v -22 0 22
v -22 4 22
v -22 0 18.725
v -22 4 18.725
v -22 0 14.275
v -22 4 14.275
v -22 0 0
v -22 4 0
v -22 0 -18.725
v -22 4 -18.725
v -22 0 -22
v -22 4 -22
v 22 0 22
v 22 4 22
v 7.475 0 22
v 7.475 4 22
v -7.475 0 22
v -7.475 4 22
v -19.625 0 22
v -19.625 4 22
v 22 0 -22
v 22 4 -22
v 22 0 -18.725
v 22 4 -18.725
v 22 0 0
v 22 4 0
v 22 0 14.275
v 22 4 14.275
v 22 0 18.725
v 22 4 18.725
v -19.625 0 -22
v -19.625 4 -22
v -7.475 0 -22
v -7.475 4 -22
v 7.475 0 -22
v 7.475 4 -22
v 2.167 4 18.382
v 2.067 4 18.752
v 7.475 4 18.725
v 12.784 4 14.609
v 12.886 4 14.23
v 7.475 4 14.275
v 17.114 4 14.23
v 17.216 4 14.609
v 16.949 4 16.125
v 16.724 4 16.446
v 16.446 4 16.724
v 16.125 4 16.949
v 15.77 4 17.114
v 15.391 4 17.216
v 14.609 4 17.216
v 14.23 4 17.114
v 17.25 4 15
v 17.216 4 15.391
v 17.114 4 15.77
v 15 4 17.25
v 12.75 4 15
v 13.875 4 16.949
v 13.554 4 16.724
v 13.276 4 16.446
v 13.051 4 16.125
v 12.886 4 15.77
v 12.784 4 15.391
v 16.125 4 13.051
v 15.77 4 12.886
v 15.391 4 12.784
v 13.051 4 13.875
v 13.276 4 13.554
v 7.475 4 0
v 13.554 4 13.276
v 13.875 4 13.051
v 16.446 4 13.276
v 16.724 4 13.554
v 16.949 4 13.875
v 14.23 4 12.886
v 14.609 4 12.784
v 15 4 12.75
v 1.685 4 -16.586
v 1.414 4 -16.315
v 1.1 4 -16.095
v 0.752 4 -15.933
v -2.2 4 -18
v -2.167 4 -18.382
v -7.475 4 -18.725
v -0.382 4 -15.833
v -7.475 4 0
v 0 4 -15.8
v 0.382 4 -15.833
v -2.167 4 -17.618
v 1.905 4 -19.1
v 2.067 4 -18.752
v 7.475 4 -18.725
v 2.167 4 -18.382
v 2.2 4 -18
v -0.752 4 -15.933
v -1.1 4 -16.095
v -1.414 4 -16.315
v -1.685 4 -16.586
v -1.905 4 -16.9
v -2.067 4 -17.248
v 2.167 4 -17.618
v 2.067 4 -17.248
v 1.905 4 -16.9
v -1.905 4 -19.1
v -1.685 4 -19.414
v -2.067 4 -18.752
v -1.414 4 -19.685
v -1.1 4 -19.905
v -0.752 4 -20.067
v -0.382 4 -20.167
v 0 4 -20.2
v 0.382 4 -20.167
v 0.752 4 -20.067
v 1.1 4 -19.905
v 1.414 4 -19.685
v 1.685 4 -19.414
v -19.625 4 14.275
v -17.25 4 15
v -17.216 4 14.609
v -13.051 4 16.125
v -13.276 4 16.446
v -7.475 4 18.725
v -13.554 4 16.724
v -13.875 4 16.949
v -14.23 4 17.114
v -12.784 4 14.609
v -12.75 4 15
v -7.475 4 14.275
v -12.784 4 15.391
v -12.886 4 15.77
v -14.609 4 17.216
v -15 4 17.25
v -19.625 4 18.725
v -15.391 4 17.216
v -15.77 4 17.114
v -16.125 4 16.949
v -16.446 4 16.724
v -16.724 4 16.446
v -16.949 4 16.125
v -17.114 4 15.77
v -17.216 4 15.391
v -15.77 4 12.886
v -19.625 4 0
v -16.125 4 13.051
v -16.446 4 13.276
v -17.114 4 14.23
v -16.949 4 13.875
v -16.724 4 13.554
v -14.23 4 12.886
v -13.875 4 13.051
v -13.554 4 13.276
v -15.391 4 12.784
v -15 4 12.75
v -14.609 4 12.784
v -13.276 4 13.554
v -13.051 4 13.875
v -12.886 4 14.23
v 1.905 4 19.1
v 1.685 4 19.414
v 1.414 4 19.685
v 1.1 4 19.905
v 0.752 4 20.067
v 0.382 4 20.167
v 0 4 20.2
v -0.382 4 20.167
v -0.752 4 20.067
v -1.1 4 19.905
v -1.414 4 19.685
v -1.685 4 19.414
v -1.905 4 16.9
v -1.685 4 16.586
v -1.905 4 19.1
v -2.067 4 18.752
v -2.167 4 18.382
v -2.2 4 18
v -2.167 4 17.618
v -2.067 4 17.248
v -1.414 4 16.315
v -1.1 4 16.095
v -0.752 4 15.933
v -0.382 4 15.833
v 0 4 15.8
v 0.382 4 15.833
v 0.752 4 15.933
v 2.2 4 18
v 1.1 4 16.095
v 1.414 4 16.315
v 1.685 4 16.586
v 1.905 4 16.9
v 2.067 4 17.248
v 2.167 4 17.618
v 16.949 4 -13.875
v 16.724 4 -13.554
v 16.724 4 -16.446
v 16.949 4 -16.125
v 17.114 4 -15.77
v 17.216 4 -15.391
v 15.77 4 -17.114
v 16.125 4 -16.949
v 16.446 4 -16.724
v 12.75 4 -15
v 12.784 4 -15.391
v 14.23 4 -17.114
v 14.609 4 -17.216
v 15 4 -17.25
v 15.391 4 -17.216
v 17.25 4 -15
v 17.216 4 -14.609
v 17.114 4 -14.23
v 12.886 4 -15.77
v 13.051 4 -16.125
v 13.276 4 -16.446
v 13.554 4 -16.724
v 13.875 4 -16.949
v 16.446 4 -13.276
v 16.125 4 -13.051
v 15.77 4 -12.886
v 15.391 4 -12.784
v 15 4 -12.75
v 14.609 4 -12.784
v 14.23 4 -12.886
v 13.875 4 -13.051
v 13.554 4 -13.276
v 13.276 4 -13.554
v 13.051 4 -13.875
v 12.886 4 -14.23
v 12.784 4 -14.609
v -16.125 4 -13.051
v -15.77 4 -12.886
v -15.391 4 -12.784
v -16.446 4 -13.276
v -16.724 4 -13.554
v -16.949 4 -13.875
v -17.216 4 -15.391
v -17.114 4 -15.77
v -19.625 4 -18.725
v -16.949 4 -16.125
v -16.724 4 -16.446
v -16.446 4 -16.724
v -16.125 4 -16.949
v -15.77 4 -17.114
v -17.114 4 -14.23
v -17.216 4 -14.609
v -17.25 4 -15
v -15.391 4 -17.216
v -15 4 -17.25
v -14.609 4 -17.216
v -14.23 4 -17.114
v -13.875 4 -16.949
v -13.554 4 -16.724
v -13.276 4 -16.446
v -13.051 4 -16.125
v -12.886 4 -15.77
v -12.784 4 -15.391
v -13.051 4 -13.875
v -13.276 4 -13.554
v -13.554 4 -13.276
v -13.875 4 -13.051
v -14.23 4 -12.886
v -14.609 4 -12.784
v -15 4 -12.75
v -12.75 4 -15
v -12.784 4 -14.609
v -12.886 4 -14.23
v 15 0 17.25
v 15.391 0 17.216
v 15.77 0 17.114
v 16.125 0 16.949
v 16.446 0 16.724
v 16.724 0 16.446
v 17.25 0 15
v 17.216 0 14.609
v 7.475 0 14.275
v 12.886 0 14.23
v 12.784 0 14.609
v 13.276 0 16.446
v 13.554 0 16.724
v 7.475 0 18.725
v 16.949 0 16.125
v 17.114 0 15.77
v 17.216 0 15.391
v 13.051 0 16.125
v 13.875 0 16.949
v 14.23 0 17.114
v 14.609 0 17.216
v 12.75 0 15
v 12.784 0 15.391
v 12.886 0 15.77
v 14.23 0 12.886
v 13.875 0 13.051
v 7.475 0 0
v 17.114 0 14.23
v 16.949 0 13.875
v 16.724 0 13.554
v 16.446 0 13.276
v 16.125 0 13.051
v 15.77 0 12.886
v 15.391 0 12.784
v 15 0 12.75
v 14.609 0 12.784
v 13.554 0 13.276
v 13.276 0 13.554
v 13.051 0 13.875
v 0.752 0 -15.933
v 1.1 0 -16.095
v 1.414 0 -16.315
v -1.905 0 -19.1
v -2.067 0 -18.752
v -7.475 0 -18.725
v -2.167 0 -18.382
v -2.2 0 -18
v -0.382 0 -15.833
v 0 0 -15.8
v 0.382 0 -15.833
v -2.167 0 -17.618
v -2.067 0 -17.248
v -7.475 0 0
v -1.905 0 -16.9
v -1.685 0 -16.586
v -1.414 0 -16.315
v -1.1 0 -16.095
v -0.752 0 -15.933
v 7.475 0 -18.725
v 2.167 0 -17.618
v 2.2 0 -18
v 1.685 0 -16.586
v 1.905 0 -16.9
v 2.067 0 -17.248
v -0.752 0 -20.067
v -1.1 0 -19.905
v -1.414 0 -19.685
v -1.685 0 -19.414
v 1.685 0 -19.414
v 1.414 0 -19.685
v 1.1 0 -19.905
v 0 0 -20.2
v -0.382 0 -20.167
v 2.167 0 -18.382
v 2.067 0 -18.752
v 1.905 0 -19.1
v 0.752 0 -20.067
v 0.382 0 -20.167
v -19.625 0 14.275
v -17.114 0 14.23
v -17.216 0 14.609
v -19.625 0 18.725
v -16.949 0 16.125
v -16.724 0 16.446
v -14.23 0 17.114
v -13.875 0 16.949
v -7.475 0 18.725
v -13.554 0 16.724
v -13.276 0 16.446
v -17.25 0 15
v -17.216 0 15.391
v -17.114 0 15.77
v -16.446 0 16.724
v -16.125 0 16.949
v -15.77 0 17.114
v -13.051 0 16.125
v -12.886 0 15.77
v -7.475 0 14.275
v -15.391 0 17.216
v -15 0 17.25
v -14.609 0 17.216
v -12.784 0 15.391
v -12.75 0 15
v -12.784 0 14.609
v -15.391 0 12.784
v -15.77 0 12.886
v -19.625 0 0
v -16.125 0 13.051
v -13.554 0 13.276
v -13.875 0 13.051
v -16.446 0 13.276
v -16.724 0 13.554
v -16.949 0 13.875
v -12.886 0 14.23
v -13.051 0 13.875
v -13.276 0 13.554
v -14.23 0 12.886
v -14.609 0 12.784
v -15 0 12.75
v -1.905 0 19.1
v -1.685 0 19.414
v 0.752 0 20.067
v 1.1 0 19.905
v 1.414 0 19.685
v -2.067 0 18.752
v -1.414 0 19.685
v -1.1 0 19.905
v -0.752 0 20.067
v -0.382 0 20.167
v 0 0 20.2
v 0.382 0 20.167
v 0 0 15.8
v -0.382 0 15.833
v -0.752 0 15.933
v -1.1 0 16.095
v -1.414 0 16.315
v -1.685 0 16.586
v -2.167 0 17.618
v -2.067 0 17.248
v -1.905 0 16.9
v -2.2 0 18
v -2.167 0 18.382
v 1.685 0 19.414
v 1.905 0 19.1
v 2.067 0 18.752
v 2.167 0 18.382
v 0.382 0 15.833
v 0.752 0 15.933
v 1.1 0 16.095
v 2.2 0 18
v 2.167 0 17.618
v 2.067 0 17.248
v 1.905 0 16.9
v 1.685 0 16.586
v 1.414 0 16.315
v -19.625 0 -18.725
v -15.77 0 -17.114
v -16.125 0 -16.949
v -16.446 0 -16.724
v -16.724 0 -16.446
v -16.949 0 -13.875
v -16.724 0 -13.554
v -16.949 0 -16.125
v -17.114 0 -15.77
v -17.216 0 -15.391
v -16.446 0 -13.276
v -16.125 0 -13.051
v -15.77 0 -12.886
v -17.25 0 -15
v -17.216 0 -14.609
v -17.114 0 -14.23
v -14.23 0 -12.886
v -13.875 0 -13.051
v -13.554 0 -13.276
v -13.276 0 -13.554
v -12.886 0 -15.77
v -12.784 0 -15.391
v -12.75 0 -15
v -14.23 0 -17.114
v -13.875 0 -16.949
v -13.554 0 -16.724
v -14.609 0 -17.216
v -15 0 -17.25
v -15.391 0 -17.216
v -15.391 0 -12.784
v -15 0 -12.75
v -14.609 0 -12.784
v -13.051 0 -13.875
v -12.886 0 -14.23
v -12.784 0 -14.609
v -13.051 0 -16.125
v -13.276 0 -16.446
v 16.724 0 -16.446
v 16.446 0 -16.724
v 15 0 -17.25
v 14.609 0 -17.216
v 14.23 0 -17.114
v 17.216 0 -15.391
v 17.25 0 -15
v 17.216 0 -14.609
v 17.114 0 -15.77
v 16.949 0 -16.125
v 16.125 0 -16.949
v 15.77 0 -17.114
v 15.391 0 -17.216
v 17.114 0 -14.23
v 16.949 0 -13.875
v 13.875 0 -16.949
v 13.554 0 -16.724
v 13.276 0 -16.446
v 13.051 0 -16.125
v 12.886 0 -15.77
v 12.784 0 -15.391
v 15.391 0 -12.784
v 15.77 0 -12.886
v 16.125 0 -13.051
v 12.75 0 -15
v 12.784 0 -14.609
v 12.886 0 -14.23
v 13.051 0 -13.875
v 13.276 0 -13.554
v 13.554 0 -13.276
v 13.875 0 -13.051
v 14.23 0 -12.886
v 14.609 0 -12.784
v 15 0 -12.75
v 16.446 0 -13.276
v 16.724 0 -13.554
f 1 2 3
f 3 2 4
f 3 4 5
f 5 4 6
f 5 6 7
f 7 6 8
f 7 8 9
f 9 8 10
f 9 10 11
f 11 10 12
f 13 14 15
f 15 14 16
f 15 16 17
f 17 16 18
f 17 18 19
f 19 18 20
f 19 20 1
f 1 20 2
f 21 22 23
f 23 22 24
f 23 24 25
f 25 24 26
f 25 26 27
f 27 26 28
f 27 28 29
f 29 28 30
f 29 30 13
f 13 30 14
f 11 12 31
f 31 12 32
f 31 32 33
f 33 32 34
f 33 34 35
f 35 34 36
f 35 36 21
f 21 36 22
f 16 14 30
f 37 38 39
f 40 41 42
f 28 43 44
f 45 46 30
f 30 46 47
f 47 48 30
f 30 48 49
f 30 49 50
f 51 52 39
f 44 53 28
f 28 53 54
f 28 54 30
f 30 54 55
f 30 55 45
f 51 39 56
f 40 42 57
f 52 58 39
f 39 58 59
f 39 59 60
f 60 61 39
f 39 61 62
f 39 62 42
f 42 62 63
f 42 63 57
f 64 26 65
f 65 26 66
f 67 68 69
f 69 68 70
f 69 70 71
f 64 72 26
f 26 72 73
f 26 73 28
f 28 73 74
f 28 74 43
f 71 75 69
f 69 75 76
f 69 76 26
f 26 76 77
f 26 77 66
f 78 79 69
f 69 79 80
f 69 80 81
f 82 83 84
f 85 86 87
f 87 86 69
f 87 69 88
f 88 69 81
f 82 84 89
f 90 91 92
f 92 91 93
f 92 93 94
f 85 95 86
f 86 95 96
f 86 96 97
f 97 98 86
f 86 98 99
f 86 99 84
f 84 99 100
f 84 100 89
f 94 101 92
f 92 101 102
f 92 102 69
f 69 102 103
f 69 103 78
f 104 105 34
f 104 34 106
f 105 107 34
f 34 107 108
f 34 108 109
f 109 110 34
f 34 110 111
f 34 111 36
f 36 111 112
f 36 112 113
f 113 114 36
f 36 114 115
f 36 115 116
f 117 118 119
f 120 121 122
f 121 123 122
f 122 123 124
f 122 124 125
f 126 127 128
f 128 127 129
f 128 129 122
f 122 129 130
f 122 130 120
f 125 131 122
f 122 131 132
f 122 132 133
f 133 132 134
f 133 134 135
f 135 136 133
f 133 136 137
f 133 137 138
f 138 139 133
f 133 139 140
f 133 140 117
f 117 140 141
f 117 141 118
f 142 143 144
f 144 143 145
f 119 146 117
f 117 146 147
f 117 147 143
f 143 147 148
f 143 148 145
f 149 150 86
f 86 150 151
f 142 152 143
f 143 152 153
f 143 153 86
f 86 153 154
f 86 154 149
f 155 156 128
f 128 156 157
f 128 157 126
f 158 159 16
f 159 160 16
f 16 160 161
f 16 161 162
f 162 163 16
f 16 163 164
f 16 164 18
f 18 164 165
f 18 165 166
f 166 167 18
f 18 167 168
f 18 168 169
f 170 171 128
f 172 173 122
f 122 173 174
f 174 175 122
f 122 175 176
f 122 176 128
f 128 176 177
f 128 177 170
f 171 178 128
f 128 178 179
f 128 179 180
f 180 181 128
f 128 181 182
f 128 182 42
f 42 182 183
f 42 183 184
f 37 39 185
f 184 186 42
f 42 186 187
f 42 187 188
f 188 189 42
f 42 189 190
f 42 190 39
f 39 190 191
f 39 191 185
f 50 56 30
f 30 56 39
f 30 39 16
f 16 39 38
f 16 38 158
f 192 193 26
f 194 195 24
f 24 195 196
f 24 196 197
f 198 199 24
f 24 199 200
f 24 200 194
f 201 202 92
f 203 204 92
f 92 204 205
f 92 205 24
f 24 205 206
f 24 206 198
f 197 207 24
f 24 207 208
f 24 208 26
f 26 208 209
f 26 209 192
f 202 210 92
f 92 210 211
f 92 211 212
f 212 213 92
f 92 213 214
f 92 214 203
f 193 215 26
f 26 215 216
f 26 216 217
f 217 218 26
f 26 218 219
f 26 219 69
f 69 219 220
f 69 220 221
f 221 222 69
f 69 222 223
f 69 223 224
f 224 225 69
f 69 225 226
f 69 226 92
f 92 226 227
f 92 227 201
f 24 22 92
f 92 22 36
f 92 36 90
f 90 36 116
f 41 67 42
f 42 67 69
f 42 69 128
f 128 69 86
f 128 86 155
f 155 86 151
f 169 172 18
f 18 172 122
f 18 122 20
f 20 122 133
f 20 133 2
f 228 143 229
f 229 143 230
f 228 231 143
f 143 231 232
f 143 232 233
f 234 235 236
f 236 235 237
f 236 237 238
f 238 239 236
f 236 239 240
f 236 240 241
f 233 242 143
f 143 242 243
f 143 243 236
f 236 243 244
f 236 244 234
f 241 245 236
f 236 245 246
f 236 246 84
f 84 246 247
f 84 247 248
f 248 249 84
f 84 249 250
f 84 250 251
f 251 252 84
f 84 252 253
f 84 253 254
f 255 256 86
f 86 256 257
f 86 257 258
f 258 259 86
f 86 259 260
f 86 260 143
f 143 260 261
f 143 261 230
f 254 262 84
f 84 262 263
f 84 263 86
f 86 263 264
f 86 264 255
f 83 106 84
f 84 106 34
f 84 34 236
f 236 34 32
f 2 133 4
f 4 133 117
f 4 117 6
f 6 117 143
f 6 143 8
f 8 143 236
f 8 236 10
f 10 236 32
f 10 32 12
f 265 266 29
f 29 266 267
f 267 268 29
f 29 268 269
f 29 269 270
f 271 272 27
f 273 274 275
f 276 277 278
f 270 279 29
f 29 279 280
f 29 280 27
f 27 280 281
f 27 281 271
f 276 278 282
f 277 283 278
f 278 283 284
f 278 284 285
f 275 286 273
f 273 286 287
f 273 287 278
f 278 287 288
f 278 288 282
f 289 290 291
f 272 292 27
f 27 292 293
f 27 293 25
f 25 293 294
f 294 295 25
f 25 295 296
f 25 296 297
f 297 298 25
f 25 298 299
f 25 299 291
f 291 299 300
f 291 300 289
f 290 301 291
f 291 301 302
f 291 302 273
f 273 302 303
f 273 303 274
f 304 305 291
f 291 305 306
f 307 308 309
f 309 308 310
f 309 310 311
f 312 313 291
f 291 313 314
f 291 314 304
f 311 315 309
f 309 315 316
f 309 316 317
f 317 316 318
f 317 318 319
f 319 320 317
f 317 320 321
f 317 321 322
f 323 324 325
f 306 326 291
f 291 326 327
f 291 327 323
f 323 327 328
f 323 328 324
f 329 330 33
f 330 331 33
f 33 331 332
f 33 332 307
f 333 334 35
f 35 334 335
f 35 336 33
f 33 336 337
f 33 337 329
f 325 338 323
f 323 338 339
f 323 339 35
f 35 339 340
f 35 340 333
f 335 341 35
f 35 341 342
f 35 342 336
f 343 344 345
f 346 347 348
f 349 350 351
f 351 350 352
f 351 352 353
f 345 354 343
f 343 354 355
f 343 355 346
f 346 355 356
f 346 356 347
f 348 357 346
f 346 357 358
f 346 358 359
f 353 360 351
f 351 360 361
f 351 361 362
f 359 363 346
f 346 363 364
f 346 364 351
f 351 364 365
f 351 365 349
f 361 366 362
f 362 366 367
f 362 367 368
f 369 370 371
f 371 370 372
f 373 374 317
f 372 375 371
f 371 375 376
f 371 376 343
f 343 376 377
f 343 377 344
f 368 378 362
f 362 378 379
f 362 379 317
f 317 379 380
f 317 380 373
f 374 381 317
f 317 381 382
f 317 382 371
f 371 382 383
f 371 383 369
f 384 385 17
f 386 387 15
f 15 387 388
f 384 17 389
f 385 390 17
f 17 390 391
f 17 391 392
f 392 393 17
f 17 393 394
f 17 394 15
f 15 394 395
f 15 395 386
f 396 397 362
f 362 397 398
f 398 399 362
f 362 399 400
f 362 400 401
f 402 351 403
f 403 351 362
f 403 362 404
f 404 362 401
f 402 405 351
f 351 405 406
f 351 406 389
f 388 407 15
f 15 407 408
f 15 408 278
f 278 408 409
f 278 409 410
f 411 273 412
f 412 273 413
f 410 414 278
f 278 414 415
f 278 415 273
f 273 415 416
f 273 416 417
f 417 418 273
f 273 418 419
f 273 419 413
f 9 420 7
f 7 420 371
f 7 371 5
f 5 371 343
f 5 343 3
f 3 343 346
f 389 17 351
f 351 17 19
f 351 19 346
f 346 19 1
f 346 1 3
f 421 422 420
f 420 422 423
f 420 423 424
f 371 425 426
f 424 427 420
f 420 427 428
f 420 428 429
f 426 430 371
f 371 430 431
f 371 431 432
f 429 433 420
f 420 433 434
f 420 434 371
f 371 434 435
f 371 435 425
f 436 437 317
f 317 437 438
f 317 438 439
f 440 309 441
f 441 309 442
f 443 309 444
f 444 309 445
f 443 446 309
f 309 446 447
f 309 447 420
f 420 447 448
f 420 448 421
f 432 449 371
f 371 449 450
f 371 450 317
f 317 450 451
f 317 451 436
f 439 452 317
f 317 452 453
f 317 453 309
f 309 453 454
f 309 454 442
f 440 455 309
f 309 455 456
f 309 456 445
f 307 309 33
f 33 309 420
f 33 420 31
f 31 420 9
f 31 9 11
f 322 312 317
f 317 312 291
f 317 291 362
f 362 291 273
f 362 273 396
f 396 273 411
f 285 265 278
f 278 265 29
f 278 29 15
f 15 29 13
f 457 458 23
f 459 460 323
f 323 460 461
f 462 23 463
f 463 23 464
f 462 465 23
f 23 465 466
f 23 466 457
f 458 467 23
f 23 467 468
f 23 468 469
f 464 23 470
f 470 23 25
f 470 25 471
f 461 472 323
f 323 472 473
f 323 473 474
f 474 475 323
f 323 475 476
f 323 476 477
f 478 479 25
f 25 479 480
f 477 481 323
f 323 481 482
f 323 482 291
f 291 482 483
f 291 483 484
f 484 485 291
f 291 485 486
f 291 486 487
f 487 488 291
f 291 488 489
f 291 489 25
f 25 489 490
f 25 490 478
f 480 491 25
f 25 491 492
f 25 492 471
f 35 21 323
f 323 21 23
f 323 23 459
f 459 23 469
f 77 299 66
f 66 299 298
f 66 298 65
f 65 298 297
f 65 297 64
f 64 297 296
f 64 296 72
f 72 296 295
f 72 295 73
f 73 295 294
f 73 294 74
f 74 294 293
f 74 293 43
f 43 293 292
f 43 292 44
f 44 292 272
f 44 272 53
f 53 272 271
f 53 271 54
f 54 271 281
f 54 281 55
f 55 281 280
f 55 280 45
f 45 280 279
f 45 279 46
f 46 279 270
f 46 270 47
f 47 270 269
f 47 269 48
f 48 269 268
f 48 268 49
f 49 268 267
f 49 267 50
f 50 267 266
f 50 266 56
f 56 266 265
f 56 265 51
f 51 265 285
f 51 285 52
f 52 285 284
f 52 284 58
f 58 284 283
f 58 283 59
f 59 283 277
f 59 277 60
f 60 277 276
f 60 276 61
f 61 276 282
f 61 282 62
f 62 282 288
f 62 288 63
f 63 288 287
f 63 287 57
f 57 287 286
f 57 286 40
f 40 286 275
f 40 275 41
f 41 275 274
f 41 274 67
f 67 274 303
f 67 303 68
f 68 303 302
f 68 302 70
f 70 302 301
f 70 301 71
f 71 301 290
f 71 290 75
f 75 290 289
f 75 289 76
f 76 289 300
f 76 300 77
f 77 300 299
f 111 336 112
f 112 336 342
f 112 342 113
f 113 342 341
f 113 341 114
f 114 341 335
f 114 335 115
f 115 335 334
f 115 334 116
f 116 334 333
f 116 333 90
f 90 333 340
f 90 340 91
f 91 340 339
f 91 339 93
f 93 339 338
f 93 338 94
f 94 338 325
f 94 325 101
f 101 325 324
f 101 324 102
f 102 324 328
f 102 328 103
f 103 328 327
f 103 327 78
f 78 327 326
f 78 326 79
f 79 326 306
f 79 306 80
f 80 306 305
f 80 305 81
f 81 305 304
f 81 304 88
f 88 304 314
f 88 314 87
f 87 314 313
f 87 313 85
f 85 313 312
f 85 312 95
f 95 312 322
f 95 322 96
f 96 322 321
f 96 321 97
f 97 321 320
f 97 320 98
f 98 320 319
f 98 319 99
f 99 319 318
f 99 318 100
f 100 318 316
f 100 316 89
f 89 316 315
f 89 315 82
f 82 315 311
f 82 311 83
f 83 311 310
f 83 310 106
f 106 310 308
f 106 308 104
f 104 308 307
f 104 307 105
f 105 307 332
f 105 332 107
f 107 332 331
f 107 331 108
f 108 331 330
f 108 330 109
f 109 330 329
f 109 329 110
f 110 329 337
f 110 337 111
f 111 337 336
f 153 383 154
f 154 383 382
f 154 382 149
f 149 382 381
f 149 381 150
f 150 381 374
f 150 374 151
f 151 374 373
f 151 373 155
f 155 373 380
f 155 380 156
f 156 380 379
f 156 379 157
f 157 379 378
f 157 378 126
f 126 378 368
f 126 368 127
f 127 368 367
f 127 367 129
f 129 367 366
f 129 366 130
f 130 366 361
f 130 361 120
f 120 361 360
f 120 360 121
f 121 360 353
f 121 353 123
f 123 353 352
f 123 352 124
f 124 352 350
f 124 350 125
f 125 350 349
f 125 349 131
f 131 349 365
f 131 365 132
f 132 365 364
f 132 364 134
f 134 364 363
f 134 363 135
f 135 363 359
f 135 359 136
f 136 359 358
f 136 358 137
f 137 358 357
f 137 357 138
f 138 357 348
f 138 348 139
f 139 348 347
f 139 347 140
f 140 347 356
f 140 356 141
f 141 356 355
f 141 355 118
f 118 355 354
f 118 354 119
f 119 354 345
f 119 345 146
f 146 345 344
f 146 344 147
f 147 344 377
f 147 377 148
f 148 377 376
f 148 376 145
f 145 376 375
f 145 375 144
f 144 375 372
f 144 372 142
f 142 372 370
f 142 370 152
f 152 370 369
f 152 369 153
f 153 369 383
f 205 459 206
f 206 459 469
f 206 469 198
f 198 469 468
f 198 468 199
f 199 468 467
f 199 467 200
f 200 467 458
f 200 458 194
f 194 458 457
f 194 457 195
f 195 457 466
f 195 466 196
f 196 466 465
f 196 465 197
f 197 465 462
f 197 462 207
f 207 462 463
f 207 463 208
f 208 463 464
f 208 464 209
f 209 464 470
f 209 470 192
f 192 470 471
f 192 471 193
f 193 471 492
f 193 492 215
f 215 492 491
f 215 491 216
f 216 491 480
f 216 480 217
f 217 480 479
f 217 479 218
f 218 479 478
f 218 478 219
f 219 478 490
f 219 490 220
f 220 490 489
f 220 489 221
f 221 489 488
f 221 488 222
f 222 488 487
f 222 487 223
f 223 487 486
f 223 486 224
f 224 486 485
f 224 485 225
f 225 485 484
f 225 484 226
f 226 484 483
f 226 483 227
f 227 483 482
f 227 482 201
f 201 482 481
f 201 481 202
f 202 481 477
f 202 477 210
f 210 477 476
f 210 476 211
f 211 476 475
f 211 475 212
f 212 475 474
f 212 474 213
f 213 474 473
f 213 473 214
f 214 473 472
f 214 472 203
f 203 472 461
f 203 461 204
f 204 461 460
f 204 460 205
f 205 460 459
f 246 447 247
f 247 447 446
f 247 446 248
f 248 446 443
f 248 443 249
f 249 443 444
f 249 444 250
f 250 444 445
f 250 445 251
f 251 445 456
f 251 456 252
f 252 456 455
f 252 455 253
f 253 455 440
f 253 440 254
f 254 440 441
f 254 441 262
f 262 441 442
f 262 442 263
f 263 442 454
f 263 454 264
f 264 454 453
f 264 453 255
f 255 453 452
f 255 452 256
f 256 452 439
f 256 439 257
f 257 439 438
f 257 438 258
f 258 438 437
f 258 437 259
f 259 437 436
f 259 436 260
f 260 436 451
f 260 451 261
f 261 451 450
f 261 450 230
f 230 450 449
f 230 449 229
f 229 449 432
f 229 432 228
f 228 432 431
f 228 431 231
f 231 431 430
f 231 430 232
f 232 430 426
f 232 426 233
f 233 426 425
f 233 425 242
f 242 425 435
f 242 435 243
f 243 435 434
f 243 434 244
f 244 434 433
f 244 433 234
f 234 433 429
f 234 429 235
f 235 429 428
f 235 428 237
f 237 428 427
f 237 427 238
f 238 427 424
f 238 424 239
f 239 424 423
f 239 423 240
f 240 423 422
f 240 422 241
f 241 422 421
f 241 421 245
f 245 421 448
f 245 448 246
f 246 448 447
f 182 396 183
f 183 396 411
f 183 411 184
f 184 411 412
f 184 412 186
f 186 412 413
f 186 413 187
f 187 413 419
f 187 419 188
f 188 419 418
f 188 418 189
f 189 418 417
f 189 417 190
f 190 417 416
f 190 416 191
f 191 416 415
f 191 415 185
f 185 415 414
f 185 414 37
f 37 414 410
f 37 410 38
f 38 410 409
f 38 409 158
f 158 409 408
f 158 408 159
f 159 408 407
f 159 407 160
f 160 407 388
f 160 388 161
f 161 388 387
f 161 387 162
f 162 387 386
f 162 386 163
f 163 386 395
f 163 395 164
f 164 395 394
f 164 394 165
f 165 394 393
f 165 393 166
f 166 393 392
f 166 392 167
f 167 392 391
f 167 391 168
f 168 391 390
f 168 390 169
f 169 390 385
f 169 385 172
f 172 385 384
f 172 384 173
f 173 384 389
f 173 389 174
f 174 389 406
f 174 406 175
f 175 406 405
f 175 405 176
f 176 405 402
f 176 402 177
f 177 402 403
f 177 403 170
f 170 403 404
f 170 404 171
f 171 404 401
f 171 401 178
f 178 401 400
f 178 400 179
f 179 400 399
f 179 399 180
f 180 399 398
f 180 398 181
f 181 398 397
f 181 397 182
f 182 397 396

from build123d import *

# Parameters (mm, degrees)
SK_PLATE_W      = 44
SK_PLATE_H      = 44
EX_PLATE_DEPTH  = 4
SK_HOLES_R      = 2.25
SK_HOLES_R_2    = 2.2
CUT_HOLES_DEPTH = 4


with BuildPart() as part:
    # SK_Plate → EX_Plate (new body)
    with BuildSketch(Plane(origin=(0, 0, 0), x_dir=(1, 0, 0), z_dir=(0, 1, 0))):
        Rectangle(SK_PLATE_W, SK_PLATE_H)
    extrude(amount=EX_PLATE_DEPTH)

    # SK_Holes → CUT_Holes (cut)
    with BuildSketch(Plane(origin=(0, 0, 0), x_dir=(1, 0, 0), z_dir=(0, 1, 0))):
        with Locations((15, -15)):
            Circle(SK_HOLES_R)
        with Locations((-15, -15)):
            Circle(SK_HOLES_R)
        with Locations((15, 15)):
            Circle(SK_HOLES_R)
        with Locations((-15, 15)):
            Circle(SK_HOLES_R)
        with Locations((0, -18)):
            Circle(SK_HOLES_R_2)
        with Locations((0, 18)):
            Circle(SK_HOLES_R_2)
    extrude(amount=CUT_HOLES_DEPTH, mode=Mode.SUBTRACT)


solid = part.part
